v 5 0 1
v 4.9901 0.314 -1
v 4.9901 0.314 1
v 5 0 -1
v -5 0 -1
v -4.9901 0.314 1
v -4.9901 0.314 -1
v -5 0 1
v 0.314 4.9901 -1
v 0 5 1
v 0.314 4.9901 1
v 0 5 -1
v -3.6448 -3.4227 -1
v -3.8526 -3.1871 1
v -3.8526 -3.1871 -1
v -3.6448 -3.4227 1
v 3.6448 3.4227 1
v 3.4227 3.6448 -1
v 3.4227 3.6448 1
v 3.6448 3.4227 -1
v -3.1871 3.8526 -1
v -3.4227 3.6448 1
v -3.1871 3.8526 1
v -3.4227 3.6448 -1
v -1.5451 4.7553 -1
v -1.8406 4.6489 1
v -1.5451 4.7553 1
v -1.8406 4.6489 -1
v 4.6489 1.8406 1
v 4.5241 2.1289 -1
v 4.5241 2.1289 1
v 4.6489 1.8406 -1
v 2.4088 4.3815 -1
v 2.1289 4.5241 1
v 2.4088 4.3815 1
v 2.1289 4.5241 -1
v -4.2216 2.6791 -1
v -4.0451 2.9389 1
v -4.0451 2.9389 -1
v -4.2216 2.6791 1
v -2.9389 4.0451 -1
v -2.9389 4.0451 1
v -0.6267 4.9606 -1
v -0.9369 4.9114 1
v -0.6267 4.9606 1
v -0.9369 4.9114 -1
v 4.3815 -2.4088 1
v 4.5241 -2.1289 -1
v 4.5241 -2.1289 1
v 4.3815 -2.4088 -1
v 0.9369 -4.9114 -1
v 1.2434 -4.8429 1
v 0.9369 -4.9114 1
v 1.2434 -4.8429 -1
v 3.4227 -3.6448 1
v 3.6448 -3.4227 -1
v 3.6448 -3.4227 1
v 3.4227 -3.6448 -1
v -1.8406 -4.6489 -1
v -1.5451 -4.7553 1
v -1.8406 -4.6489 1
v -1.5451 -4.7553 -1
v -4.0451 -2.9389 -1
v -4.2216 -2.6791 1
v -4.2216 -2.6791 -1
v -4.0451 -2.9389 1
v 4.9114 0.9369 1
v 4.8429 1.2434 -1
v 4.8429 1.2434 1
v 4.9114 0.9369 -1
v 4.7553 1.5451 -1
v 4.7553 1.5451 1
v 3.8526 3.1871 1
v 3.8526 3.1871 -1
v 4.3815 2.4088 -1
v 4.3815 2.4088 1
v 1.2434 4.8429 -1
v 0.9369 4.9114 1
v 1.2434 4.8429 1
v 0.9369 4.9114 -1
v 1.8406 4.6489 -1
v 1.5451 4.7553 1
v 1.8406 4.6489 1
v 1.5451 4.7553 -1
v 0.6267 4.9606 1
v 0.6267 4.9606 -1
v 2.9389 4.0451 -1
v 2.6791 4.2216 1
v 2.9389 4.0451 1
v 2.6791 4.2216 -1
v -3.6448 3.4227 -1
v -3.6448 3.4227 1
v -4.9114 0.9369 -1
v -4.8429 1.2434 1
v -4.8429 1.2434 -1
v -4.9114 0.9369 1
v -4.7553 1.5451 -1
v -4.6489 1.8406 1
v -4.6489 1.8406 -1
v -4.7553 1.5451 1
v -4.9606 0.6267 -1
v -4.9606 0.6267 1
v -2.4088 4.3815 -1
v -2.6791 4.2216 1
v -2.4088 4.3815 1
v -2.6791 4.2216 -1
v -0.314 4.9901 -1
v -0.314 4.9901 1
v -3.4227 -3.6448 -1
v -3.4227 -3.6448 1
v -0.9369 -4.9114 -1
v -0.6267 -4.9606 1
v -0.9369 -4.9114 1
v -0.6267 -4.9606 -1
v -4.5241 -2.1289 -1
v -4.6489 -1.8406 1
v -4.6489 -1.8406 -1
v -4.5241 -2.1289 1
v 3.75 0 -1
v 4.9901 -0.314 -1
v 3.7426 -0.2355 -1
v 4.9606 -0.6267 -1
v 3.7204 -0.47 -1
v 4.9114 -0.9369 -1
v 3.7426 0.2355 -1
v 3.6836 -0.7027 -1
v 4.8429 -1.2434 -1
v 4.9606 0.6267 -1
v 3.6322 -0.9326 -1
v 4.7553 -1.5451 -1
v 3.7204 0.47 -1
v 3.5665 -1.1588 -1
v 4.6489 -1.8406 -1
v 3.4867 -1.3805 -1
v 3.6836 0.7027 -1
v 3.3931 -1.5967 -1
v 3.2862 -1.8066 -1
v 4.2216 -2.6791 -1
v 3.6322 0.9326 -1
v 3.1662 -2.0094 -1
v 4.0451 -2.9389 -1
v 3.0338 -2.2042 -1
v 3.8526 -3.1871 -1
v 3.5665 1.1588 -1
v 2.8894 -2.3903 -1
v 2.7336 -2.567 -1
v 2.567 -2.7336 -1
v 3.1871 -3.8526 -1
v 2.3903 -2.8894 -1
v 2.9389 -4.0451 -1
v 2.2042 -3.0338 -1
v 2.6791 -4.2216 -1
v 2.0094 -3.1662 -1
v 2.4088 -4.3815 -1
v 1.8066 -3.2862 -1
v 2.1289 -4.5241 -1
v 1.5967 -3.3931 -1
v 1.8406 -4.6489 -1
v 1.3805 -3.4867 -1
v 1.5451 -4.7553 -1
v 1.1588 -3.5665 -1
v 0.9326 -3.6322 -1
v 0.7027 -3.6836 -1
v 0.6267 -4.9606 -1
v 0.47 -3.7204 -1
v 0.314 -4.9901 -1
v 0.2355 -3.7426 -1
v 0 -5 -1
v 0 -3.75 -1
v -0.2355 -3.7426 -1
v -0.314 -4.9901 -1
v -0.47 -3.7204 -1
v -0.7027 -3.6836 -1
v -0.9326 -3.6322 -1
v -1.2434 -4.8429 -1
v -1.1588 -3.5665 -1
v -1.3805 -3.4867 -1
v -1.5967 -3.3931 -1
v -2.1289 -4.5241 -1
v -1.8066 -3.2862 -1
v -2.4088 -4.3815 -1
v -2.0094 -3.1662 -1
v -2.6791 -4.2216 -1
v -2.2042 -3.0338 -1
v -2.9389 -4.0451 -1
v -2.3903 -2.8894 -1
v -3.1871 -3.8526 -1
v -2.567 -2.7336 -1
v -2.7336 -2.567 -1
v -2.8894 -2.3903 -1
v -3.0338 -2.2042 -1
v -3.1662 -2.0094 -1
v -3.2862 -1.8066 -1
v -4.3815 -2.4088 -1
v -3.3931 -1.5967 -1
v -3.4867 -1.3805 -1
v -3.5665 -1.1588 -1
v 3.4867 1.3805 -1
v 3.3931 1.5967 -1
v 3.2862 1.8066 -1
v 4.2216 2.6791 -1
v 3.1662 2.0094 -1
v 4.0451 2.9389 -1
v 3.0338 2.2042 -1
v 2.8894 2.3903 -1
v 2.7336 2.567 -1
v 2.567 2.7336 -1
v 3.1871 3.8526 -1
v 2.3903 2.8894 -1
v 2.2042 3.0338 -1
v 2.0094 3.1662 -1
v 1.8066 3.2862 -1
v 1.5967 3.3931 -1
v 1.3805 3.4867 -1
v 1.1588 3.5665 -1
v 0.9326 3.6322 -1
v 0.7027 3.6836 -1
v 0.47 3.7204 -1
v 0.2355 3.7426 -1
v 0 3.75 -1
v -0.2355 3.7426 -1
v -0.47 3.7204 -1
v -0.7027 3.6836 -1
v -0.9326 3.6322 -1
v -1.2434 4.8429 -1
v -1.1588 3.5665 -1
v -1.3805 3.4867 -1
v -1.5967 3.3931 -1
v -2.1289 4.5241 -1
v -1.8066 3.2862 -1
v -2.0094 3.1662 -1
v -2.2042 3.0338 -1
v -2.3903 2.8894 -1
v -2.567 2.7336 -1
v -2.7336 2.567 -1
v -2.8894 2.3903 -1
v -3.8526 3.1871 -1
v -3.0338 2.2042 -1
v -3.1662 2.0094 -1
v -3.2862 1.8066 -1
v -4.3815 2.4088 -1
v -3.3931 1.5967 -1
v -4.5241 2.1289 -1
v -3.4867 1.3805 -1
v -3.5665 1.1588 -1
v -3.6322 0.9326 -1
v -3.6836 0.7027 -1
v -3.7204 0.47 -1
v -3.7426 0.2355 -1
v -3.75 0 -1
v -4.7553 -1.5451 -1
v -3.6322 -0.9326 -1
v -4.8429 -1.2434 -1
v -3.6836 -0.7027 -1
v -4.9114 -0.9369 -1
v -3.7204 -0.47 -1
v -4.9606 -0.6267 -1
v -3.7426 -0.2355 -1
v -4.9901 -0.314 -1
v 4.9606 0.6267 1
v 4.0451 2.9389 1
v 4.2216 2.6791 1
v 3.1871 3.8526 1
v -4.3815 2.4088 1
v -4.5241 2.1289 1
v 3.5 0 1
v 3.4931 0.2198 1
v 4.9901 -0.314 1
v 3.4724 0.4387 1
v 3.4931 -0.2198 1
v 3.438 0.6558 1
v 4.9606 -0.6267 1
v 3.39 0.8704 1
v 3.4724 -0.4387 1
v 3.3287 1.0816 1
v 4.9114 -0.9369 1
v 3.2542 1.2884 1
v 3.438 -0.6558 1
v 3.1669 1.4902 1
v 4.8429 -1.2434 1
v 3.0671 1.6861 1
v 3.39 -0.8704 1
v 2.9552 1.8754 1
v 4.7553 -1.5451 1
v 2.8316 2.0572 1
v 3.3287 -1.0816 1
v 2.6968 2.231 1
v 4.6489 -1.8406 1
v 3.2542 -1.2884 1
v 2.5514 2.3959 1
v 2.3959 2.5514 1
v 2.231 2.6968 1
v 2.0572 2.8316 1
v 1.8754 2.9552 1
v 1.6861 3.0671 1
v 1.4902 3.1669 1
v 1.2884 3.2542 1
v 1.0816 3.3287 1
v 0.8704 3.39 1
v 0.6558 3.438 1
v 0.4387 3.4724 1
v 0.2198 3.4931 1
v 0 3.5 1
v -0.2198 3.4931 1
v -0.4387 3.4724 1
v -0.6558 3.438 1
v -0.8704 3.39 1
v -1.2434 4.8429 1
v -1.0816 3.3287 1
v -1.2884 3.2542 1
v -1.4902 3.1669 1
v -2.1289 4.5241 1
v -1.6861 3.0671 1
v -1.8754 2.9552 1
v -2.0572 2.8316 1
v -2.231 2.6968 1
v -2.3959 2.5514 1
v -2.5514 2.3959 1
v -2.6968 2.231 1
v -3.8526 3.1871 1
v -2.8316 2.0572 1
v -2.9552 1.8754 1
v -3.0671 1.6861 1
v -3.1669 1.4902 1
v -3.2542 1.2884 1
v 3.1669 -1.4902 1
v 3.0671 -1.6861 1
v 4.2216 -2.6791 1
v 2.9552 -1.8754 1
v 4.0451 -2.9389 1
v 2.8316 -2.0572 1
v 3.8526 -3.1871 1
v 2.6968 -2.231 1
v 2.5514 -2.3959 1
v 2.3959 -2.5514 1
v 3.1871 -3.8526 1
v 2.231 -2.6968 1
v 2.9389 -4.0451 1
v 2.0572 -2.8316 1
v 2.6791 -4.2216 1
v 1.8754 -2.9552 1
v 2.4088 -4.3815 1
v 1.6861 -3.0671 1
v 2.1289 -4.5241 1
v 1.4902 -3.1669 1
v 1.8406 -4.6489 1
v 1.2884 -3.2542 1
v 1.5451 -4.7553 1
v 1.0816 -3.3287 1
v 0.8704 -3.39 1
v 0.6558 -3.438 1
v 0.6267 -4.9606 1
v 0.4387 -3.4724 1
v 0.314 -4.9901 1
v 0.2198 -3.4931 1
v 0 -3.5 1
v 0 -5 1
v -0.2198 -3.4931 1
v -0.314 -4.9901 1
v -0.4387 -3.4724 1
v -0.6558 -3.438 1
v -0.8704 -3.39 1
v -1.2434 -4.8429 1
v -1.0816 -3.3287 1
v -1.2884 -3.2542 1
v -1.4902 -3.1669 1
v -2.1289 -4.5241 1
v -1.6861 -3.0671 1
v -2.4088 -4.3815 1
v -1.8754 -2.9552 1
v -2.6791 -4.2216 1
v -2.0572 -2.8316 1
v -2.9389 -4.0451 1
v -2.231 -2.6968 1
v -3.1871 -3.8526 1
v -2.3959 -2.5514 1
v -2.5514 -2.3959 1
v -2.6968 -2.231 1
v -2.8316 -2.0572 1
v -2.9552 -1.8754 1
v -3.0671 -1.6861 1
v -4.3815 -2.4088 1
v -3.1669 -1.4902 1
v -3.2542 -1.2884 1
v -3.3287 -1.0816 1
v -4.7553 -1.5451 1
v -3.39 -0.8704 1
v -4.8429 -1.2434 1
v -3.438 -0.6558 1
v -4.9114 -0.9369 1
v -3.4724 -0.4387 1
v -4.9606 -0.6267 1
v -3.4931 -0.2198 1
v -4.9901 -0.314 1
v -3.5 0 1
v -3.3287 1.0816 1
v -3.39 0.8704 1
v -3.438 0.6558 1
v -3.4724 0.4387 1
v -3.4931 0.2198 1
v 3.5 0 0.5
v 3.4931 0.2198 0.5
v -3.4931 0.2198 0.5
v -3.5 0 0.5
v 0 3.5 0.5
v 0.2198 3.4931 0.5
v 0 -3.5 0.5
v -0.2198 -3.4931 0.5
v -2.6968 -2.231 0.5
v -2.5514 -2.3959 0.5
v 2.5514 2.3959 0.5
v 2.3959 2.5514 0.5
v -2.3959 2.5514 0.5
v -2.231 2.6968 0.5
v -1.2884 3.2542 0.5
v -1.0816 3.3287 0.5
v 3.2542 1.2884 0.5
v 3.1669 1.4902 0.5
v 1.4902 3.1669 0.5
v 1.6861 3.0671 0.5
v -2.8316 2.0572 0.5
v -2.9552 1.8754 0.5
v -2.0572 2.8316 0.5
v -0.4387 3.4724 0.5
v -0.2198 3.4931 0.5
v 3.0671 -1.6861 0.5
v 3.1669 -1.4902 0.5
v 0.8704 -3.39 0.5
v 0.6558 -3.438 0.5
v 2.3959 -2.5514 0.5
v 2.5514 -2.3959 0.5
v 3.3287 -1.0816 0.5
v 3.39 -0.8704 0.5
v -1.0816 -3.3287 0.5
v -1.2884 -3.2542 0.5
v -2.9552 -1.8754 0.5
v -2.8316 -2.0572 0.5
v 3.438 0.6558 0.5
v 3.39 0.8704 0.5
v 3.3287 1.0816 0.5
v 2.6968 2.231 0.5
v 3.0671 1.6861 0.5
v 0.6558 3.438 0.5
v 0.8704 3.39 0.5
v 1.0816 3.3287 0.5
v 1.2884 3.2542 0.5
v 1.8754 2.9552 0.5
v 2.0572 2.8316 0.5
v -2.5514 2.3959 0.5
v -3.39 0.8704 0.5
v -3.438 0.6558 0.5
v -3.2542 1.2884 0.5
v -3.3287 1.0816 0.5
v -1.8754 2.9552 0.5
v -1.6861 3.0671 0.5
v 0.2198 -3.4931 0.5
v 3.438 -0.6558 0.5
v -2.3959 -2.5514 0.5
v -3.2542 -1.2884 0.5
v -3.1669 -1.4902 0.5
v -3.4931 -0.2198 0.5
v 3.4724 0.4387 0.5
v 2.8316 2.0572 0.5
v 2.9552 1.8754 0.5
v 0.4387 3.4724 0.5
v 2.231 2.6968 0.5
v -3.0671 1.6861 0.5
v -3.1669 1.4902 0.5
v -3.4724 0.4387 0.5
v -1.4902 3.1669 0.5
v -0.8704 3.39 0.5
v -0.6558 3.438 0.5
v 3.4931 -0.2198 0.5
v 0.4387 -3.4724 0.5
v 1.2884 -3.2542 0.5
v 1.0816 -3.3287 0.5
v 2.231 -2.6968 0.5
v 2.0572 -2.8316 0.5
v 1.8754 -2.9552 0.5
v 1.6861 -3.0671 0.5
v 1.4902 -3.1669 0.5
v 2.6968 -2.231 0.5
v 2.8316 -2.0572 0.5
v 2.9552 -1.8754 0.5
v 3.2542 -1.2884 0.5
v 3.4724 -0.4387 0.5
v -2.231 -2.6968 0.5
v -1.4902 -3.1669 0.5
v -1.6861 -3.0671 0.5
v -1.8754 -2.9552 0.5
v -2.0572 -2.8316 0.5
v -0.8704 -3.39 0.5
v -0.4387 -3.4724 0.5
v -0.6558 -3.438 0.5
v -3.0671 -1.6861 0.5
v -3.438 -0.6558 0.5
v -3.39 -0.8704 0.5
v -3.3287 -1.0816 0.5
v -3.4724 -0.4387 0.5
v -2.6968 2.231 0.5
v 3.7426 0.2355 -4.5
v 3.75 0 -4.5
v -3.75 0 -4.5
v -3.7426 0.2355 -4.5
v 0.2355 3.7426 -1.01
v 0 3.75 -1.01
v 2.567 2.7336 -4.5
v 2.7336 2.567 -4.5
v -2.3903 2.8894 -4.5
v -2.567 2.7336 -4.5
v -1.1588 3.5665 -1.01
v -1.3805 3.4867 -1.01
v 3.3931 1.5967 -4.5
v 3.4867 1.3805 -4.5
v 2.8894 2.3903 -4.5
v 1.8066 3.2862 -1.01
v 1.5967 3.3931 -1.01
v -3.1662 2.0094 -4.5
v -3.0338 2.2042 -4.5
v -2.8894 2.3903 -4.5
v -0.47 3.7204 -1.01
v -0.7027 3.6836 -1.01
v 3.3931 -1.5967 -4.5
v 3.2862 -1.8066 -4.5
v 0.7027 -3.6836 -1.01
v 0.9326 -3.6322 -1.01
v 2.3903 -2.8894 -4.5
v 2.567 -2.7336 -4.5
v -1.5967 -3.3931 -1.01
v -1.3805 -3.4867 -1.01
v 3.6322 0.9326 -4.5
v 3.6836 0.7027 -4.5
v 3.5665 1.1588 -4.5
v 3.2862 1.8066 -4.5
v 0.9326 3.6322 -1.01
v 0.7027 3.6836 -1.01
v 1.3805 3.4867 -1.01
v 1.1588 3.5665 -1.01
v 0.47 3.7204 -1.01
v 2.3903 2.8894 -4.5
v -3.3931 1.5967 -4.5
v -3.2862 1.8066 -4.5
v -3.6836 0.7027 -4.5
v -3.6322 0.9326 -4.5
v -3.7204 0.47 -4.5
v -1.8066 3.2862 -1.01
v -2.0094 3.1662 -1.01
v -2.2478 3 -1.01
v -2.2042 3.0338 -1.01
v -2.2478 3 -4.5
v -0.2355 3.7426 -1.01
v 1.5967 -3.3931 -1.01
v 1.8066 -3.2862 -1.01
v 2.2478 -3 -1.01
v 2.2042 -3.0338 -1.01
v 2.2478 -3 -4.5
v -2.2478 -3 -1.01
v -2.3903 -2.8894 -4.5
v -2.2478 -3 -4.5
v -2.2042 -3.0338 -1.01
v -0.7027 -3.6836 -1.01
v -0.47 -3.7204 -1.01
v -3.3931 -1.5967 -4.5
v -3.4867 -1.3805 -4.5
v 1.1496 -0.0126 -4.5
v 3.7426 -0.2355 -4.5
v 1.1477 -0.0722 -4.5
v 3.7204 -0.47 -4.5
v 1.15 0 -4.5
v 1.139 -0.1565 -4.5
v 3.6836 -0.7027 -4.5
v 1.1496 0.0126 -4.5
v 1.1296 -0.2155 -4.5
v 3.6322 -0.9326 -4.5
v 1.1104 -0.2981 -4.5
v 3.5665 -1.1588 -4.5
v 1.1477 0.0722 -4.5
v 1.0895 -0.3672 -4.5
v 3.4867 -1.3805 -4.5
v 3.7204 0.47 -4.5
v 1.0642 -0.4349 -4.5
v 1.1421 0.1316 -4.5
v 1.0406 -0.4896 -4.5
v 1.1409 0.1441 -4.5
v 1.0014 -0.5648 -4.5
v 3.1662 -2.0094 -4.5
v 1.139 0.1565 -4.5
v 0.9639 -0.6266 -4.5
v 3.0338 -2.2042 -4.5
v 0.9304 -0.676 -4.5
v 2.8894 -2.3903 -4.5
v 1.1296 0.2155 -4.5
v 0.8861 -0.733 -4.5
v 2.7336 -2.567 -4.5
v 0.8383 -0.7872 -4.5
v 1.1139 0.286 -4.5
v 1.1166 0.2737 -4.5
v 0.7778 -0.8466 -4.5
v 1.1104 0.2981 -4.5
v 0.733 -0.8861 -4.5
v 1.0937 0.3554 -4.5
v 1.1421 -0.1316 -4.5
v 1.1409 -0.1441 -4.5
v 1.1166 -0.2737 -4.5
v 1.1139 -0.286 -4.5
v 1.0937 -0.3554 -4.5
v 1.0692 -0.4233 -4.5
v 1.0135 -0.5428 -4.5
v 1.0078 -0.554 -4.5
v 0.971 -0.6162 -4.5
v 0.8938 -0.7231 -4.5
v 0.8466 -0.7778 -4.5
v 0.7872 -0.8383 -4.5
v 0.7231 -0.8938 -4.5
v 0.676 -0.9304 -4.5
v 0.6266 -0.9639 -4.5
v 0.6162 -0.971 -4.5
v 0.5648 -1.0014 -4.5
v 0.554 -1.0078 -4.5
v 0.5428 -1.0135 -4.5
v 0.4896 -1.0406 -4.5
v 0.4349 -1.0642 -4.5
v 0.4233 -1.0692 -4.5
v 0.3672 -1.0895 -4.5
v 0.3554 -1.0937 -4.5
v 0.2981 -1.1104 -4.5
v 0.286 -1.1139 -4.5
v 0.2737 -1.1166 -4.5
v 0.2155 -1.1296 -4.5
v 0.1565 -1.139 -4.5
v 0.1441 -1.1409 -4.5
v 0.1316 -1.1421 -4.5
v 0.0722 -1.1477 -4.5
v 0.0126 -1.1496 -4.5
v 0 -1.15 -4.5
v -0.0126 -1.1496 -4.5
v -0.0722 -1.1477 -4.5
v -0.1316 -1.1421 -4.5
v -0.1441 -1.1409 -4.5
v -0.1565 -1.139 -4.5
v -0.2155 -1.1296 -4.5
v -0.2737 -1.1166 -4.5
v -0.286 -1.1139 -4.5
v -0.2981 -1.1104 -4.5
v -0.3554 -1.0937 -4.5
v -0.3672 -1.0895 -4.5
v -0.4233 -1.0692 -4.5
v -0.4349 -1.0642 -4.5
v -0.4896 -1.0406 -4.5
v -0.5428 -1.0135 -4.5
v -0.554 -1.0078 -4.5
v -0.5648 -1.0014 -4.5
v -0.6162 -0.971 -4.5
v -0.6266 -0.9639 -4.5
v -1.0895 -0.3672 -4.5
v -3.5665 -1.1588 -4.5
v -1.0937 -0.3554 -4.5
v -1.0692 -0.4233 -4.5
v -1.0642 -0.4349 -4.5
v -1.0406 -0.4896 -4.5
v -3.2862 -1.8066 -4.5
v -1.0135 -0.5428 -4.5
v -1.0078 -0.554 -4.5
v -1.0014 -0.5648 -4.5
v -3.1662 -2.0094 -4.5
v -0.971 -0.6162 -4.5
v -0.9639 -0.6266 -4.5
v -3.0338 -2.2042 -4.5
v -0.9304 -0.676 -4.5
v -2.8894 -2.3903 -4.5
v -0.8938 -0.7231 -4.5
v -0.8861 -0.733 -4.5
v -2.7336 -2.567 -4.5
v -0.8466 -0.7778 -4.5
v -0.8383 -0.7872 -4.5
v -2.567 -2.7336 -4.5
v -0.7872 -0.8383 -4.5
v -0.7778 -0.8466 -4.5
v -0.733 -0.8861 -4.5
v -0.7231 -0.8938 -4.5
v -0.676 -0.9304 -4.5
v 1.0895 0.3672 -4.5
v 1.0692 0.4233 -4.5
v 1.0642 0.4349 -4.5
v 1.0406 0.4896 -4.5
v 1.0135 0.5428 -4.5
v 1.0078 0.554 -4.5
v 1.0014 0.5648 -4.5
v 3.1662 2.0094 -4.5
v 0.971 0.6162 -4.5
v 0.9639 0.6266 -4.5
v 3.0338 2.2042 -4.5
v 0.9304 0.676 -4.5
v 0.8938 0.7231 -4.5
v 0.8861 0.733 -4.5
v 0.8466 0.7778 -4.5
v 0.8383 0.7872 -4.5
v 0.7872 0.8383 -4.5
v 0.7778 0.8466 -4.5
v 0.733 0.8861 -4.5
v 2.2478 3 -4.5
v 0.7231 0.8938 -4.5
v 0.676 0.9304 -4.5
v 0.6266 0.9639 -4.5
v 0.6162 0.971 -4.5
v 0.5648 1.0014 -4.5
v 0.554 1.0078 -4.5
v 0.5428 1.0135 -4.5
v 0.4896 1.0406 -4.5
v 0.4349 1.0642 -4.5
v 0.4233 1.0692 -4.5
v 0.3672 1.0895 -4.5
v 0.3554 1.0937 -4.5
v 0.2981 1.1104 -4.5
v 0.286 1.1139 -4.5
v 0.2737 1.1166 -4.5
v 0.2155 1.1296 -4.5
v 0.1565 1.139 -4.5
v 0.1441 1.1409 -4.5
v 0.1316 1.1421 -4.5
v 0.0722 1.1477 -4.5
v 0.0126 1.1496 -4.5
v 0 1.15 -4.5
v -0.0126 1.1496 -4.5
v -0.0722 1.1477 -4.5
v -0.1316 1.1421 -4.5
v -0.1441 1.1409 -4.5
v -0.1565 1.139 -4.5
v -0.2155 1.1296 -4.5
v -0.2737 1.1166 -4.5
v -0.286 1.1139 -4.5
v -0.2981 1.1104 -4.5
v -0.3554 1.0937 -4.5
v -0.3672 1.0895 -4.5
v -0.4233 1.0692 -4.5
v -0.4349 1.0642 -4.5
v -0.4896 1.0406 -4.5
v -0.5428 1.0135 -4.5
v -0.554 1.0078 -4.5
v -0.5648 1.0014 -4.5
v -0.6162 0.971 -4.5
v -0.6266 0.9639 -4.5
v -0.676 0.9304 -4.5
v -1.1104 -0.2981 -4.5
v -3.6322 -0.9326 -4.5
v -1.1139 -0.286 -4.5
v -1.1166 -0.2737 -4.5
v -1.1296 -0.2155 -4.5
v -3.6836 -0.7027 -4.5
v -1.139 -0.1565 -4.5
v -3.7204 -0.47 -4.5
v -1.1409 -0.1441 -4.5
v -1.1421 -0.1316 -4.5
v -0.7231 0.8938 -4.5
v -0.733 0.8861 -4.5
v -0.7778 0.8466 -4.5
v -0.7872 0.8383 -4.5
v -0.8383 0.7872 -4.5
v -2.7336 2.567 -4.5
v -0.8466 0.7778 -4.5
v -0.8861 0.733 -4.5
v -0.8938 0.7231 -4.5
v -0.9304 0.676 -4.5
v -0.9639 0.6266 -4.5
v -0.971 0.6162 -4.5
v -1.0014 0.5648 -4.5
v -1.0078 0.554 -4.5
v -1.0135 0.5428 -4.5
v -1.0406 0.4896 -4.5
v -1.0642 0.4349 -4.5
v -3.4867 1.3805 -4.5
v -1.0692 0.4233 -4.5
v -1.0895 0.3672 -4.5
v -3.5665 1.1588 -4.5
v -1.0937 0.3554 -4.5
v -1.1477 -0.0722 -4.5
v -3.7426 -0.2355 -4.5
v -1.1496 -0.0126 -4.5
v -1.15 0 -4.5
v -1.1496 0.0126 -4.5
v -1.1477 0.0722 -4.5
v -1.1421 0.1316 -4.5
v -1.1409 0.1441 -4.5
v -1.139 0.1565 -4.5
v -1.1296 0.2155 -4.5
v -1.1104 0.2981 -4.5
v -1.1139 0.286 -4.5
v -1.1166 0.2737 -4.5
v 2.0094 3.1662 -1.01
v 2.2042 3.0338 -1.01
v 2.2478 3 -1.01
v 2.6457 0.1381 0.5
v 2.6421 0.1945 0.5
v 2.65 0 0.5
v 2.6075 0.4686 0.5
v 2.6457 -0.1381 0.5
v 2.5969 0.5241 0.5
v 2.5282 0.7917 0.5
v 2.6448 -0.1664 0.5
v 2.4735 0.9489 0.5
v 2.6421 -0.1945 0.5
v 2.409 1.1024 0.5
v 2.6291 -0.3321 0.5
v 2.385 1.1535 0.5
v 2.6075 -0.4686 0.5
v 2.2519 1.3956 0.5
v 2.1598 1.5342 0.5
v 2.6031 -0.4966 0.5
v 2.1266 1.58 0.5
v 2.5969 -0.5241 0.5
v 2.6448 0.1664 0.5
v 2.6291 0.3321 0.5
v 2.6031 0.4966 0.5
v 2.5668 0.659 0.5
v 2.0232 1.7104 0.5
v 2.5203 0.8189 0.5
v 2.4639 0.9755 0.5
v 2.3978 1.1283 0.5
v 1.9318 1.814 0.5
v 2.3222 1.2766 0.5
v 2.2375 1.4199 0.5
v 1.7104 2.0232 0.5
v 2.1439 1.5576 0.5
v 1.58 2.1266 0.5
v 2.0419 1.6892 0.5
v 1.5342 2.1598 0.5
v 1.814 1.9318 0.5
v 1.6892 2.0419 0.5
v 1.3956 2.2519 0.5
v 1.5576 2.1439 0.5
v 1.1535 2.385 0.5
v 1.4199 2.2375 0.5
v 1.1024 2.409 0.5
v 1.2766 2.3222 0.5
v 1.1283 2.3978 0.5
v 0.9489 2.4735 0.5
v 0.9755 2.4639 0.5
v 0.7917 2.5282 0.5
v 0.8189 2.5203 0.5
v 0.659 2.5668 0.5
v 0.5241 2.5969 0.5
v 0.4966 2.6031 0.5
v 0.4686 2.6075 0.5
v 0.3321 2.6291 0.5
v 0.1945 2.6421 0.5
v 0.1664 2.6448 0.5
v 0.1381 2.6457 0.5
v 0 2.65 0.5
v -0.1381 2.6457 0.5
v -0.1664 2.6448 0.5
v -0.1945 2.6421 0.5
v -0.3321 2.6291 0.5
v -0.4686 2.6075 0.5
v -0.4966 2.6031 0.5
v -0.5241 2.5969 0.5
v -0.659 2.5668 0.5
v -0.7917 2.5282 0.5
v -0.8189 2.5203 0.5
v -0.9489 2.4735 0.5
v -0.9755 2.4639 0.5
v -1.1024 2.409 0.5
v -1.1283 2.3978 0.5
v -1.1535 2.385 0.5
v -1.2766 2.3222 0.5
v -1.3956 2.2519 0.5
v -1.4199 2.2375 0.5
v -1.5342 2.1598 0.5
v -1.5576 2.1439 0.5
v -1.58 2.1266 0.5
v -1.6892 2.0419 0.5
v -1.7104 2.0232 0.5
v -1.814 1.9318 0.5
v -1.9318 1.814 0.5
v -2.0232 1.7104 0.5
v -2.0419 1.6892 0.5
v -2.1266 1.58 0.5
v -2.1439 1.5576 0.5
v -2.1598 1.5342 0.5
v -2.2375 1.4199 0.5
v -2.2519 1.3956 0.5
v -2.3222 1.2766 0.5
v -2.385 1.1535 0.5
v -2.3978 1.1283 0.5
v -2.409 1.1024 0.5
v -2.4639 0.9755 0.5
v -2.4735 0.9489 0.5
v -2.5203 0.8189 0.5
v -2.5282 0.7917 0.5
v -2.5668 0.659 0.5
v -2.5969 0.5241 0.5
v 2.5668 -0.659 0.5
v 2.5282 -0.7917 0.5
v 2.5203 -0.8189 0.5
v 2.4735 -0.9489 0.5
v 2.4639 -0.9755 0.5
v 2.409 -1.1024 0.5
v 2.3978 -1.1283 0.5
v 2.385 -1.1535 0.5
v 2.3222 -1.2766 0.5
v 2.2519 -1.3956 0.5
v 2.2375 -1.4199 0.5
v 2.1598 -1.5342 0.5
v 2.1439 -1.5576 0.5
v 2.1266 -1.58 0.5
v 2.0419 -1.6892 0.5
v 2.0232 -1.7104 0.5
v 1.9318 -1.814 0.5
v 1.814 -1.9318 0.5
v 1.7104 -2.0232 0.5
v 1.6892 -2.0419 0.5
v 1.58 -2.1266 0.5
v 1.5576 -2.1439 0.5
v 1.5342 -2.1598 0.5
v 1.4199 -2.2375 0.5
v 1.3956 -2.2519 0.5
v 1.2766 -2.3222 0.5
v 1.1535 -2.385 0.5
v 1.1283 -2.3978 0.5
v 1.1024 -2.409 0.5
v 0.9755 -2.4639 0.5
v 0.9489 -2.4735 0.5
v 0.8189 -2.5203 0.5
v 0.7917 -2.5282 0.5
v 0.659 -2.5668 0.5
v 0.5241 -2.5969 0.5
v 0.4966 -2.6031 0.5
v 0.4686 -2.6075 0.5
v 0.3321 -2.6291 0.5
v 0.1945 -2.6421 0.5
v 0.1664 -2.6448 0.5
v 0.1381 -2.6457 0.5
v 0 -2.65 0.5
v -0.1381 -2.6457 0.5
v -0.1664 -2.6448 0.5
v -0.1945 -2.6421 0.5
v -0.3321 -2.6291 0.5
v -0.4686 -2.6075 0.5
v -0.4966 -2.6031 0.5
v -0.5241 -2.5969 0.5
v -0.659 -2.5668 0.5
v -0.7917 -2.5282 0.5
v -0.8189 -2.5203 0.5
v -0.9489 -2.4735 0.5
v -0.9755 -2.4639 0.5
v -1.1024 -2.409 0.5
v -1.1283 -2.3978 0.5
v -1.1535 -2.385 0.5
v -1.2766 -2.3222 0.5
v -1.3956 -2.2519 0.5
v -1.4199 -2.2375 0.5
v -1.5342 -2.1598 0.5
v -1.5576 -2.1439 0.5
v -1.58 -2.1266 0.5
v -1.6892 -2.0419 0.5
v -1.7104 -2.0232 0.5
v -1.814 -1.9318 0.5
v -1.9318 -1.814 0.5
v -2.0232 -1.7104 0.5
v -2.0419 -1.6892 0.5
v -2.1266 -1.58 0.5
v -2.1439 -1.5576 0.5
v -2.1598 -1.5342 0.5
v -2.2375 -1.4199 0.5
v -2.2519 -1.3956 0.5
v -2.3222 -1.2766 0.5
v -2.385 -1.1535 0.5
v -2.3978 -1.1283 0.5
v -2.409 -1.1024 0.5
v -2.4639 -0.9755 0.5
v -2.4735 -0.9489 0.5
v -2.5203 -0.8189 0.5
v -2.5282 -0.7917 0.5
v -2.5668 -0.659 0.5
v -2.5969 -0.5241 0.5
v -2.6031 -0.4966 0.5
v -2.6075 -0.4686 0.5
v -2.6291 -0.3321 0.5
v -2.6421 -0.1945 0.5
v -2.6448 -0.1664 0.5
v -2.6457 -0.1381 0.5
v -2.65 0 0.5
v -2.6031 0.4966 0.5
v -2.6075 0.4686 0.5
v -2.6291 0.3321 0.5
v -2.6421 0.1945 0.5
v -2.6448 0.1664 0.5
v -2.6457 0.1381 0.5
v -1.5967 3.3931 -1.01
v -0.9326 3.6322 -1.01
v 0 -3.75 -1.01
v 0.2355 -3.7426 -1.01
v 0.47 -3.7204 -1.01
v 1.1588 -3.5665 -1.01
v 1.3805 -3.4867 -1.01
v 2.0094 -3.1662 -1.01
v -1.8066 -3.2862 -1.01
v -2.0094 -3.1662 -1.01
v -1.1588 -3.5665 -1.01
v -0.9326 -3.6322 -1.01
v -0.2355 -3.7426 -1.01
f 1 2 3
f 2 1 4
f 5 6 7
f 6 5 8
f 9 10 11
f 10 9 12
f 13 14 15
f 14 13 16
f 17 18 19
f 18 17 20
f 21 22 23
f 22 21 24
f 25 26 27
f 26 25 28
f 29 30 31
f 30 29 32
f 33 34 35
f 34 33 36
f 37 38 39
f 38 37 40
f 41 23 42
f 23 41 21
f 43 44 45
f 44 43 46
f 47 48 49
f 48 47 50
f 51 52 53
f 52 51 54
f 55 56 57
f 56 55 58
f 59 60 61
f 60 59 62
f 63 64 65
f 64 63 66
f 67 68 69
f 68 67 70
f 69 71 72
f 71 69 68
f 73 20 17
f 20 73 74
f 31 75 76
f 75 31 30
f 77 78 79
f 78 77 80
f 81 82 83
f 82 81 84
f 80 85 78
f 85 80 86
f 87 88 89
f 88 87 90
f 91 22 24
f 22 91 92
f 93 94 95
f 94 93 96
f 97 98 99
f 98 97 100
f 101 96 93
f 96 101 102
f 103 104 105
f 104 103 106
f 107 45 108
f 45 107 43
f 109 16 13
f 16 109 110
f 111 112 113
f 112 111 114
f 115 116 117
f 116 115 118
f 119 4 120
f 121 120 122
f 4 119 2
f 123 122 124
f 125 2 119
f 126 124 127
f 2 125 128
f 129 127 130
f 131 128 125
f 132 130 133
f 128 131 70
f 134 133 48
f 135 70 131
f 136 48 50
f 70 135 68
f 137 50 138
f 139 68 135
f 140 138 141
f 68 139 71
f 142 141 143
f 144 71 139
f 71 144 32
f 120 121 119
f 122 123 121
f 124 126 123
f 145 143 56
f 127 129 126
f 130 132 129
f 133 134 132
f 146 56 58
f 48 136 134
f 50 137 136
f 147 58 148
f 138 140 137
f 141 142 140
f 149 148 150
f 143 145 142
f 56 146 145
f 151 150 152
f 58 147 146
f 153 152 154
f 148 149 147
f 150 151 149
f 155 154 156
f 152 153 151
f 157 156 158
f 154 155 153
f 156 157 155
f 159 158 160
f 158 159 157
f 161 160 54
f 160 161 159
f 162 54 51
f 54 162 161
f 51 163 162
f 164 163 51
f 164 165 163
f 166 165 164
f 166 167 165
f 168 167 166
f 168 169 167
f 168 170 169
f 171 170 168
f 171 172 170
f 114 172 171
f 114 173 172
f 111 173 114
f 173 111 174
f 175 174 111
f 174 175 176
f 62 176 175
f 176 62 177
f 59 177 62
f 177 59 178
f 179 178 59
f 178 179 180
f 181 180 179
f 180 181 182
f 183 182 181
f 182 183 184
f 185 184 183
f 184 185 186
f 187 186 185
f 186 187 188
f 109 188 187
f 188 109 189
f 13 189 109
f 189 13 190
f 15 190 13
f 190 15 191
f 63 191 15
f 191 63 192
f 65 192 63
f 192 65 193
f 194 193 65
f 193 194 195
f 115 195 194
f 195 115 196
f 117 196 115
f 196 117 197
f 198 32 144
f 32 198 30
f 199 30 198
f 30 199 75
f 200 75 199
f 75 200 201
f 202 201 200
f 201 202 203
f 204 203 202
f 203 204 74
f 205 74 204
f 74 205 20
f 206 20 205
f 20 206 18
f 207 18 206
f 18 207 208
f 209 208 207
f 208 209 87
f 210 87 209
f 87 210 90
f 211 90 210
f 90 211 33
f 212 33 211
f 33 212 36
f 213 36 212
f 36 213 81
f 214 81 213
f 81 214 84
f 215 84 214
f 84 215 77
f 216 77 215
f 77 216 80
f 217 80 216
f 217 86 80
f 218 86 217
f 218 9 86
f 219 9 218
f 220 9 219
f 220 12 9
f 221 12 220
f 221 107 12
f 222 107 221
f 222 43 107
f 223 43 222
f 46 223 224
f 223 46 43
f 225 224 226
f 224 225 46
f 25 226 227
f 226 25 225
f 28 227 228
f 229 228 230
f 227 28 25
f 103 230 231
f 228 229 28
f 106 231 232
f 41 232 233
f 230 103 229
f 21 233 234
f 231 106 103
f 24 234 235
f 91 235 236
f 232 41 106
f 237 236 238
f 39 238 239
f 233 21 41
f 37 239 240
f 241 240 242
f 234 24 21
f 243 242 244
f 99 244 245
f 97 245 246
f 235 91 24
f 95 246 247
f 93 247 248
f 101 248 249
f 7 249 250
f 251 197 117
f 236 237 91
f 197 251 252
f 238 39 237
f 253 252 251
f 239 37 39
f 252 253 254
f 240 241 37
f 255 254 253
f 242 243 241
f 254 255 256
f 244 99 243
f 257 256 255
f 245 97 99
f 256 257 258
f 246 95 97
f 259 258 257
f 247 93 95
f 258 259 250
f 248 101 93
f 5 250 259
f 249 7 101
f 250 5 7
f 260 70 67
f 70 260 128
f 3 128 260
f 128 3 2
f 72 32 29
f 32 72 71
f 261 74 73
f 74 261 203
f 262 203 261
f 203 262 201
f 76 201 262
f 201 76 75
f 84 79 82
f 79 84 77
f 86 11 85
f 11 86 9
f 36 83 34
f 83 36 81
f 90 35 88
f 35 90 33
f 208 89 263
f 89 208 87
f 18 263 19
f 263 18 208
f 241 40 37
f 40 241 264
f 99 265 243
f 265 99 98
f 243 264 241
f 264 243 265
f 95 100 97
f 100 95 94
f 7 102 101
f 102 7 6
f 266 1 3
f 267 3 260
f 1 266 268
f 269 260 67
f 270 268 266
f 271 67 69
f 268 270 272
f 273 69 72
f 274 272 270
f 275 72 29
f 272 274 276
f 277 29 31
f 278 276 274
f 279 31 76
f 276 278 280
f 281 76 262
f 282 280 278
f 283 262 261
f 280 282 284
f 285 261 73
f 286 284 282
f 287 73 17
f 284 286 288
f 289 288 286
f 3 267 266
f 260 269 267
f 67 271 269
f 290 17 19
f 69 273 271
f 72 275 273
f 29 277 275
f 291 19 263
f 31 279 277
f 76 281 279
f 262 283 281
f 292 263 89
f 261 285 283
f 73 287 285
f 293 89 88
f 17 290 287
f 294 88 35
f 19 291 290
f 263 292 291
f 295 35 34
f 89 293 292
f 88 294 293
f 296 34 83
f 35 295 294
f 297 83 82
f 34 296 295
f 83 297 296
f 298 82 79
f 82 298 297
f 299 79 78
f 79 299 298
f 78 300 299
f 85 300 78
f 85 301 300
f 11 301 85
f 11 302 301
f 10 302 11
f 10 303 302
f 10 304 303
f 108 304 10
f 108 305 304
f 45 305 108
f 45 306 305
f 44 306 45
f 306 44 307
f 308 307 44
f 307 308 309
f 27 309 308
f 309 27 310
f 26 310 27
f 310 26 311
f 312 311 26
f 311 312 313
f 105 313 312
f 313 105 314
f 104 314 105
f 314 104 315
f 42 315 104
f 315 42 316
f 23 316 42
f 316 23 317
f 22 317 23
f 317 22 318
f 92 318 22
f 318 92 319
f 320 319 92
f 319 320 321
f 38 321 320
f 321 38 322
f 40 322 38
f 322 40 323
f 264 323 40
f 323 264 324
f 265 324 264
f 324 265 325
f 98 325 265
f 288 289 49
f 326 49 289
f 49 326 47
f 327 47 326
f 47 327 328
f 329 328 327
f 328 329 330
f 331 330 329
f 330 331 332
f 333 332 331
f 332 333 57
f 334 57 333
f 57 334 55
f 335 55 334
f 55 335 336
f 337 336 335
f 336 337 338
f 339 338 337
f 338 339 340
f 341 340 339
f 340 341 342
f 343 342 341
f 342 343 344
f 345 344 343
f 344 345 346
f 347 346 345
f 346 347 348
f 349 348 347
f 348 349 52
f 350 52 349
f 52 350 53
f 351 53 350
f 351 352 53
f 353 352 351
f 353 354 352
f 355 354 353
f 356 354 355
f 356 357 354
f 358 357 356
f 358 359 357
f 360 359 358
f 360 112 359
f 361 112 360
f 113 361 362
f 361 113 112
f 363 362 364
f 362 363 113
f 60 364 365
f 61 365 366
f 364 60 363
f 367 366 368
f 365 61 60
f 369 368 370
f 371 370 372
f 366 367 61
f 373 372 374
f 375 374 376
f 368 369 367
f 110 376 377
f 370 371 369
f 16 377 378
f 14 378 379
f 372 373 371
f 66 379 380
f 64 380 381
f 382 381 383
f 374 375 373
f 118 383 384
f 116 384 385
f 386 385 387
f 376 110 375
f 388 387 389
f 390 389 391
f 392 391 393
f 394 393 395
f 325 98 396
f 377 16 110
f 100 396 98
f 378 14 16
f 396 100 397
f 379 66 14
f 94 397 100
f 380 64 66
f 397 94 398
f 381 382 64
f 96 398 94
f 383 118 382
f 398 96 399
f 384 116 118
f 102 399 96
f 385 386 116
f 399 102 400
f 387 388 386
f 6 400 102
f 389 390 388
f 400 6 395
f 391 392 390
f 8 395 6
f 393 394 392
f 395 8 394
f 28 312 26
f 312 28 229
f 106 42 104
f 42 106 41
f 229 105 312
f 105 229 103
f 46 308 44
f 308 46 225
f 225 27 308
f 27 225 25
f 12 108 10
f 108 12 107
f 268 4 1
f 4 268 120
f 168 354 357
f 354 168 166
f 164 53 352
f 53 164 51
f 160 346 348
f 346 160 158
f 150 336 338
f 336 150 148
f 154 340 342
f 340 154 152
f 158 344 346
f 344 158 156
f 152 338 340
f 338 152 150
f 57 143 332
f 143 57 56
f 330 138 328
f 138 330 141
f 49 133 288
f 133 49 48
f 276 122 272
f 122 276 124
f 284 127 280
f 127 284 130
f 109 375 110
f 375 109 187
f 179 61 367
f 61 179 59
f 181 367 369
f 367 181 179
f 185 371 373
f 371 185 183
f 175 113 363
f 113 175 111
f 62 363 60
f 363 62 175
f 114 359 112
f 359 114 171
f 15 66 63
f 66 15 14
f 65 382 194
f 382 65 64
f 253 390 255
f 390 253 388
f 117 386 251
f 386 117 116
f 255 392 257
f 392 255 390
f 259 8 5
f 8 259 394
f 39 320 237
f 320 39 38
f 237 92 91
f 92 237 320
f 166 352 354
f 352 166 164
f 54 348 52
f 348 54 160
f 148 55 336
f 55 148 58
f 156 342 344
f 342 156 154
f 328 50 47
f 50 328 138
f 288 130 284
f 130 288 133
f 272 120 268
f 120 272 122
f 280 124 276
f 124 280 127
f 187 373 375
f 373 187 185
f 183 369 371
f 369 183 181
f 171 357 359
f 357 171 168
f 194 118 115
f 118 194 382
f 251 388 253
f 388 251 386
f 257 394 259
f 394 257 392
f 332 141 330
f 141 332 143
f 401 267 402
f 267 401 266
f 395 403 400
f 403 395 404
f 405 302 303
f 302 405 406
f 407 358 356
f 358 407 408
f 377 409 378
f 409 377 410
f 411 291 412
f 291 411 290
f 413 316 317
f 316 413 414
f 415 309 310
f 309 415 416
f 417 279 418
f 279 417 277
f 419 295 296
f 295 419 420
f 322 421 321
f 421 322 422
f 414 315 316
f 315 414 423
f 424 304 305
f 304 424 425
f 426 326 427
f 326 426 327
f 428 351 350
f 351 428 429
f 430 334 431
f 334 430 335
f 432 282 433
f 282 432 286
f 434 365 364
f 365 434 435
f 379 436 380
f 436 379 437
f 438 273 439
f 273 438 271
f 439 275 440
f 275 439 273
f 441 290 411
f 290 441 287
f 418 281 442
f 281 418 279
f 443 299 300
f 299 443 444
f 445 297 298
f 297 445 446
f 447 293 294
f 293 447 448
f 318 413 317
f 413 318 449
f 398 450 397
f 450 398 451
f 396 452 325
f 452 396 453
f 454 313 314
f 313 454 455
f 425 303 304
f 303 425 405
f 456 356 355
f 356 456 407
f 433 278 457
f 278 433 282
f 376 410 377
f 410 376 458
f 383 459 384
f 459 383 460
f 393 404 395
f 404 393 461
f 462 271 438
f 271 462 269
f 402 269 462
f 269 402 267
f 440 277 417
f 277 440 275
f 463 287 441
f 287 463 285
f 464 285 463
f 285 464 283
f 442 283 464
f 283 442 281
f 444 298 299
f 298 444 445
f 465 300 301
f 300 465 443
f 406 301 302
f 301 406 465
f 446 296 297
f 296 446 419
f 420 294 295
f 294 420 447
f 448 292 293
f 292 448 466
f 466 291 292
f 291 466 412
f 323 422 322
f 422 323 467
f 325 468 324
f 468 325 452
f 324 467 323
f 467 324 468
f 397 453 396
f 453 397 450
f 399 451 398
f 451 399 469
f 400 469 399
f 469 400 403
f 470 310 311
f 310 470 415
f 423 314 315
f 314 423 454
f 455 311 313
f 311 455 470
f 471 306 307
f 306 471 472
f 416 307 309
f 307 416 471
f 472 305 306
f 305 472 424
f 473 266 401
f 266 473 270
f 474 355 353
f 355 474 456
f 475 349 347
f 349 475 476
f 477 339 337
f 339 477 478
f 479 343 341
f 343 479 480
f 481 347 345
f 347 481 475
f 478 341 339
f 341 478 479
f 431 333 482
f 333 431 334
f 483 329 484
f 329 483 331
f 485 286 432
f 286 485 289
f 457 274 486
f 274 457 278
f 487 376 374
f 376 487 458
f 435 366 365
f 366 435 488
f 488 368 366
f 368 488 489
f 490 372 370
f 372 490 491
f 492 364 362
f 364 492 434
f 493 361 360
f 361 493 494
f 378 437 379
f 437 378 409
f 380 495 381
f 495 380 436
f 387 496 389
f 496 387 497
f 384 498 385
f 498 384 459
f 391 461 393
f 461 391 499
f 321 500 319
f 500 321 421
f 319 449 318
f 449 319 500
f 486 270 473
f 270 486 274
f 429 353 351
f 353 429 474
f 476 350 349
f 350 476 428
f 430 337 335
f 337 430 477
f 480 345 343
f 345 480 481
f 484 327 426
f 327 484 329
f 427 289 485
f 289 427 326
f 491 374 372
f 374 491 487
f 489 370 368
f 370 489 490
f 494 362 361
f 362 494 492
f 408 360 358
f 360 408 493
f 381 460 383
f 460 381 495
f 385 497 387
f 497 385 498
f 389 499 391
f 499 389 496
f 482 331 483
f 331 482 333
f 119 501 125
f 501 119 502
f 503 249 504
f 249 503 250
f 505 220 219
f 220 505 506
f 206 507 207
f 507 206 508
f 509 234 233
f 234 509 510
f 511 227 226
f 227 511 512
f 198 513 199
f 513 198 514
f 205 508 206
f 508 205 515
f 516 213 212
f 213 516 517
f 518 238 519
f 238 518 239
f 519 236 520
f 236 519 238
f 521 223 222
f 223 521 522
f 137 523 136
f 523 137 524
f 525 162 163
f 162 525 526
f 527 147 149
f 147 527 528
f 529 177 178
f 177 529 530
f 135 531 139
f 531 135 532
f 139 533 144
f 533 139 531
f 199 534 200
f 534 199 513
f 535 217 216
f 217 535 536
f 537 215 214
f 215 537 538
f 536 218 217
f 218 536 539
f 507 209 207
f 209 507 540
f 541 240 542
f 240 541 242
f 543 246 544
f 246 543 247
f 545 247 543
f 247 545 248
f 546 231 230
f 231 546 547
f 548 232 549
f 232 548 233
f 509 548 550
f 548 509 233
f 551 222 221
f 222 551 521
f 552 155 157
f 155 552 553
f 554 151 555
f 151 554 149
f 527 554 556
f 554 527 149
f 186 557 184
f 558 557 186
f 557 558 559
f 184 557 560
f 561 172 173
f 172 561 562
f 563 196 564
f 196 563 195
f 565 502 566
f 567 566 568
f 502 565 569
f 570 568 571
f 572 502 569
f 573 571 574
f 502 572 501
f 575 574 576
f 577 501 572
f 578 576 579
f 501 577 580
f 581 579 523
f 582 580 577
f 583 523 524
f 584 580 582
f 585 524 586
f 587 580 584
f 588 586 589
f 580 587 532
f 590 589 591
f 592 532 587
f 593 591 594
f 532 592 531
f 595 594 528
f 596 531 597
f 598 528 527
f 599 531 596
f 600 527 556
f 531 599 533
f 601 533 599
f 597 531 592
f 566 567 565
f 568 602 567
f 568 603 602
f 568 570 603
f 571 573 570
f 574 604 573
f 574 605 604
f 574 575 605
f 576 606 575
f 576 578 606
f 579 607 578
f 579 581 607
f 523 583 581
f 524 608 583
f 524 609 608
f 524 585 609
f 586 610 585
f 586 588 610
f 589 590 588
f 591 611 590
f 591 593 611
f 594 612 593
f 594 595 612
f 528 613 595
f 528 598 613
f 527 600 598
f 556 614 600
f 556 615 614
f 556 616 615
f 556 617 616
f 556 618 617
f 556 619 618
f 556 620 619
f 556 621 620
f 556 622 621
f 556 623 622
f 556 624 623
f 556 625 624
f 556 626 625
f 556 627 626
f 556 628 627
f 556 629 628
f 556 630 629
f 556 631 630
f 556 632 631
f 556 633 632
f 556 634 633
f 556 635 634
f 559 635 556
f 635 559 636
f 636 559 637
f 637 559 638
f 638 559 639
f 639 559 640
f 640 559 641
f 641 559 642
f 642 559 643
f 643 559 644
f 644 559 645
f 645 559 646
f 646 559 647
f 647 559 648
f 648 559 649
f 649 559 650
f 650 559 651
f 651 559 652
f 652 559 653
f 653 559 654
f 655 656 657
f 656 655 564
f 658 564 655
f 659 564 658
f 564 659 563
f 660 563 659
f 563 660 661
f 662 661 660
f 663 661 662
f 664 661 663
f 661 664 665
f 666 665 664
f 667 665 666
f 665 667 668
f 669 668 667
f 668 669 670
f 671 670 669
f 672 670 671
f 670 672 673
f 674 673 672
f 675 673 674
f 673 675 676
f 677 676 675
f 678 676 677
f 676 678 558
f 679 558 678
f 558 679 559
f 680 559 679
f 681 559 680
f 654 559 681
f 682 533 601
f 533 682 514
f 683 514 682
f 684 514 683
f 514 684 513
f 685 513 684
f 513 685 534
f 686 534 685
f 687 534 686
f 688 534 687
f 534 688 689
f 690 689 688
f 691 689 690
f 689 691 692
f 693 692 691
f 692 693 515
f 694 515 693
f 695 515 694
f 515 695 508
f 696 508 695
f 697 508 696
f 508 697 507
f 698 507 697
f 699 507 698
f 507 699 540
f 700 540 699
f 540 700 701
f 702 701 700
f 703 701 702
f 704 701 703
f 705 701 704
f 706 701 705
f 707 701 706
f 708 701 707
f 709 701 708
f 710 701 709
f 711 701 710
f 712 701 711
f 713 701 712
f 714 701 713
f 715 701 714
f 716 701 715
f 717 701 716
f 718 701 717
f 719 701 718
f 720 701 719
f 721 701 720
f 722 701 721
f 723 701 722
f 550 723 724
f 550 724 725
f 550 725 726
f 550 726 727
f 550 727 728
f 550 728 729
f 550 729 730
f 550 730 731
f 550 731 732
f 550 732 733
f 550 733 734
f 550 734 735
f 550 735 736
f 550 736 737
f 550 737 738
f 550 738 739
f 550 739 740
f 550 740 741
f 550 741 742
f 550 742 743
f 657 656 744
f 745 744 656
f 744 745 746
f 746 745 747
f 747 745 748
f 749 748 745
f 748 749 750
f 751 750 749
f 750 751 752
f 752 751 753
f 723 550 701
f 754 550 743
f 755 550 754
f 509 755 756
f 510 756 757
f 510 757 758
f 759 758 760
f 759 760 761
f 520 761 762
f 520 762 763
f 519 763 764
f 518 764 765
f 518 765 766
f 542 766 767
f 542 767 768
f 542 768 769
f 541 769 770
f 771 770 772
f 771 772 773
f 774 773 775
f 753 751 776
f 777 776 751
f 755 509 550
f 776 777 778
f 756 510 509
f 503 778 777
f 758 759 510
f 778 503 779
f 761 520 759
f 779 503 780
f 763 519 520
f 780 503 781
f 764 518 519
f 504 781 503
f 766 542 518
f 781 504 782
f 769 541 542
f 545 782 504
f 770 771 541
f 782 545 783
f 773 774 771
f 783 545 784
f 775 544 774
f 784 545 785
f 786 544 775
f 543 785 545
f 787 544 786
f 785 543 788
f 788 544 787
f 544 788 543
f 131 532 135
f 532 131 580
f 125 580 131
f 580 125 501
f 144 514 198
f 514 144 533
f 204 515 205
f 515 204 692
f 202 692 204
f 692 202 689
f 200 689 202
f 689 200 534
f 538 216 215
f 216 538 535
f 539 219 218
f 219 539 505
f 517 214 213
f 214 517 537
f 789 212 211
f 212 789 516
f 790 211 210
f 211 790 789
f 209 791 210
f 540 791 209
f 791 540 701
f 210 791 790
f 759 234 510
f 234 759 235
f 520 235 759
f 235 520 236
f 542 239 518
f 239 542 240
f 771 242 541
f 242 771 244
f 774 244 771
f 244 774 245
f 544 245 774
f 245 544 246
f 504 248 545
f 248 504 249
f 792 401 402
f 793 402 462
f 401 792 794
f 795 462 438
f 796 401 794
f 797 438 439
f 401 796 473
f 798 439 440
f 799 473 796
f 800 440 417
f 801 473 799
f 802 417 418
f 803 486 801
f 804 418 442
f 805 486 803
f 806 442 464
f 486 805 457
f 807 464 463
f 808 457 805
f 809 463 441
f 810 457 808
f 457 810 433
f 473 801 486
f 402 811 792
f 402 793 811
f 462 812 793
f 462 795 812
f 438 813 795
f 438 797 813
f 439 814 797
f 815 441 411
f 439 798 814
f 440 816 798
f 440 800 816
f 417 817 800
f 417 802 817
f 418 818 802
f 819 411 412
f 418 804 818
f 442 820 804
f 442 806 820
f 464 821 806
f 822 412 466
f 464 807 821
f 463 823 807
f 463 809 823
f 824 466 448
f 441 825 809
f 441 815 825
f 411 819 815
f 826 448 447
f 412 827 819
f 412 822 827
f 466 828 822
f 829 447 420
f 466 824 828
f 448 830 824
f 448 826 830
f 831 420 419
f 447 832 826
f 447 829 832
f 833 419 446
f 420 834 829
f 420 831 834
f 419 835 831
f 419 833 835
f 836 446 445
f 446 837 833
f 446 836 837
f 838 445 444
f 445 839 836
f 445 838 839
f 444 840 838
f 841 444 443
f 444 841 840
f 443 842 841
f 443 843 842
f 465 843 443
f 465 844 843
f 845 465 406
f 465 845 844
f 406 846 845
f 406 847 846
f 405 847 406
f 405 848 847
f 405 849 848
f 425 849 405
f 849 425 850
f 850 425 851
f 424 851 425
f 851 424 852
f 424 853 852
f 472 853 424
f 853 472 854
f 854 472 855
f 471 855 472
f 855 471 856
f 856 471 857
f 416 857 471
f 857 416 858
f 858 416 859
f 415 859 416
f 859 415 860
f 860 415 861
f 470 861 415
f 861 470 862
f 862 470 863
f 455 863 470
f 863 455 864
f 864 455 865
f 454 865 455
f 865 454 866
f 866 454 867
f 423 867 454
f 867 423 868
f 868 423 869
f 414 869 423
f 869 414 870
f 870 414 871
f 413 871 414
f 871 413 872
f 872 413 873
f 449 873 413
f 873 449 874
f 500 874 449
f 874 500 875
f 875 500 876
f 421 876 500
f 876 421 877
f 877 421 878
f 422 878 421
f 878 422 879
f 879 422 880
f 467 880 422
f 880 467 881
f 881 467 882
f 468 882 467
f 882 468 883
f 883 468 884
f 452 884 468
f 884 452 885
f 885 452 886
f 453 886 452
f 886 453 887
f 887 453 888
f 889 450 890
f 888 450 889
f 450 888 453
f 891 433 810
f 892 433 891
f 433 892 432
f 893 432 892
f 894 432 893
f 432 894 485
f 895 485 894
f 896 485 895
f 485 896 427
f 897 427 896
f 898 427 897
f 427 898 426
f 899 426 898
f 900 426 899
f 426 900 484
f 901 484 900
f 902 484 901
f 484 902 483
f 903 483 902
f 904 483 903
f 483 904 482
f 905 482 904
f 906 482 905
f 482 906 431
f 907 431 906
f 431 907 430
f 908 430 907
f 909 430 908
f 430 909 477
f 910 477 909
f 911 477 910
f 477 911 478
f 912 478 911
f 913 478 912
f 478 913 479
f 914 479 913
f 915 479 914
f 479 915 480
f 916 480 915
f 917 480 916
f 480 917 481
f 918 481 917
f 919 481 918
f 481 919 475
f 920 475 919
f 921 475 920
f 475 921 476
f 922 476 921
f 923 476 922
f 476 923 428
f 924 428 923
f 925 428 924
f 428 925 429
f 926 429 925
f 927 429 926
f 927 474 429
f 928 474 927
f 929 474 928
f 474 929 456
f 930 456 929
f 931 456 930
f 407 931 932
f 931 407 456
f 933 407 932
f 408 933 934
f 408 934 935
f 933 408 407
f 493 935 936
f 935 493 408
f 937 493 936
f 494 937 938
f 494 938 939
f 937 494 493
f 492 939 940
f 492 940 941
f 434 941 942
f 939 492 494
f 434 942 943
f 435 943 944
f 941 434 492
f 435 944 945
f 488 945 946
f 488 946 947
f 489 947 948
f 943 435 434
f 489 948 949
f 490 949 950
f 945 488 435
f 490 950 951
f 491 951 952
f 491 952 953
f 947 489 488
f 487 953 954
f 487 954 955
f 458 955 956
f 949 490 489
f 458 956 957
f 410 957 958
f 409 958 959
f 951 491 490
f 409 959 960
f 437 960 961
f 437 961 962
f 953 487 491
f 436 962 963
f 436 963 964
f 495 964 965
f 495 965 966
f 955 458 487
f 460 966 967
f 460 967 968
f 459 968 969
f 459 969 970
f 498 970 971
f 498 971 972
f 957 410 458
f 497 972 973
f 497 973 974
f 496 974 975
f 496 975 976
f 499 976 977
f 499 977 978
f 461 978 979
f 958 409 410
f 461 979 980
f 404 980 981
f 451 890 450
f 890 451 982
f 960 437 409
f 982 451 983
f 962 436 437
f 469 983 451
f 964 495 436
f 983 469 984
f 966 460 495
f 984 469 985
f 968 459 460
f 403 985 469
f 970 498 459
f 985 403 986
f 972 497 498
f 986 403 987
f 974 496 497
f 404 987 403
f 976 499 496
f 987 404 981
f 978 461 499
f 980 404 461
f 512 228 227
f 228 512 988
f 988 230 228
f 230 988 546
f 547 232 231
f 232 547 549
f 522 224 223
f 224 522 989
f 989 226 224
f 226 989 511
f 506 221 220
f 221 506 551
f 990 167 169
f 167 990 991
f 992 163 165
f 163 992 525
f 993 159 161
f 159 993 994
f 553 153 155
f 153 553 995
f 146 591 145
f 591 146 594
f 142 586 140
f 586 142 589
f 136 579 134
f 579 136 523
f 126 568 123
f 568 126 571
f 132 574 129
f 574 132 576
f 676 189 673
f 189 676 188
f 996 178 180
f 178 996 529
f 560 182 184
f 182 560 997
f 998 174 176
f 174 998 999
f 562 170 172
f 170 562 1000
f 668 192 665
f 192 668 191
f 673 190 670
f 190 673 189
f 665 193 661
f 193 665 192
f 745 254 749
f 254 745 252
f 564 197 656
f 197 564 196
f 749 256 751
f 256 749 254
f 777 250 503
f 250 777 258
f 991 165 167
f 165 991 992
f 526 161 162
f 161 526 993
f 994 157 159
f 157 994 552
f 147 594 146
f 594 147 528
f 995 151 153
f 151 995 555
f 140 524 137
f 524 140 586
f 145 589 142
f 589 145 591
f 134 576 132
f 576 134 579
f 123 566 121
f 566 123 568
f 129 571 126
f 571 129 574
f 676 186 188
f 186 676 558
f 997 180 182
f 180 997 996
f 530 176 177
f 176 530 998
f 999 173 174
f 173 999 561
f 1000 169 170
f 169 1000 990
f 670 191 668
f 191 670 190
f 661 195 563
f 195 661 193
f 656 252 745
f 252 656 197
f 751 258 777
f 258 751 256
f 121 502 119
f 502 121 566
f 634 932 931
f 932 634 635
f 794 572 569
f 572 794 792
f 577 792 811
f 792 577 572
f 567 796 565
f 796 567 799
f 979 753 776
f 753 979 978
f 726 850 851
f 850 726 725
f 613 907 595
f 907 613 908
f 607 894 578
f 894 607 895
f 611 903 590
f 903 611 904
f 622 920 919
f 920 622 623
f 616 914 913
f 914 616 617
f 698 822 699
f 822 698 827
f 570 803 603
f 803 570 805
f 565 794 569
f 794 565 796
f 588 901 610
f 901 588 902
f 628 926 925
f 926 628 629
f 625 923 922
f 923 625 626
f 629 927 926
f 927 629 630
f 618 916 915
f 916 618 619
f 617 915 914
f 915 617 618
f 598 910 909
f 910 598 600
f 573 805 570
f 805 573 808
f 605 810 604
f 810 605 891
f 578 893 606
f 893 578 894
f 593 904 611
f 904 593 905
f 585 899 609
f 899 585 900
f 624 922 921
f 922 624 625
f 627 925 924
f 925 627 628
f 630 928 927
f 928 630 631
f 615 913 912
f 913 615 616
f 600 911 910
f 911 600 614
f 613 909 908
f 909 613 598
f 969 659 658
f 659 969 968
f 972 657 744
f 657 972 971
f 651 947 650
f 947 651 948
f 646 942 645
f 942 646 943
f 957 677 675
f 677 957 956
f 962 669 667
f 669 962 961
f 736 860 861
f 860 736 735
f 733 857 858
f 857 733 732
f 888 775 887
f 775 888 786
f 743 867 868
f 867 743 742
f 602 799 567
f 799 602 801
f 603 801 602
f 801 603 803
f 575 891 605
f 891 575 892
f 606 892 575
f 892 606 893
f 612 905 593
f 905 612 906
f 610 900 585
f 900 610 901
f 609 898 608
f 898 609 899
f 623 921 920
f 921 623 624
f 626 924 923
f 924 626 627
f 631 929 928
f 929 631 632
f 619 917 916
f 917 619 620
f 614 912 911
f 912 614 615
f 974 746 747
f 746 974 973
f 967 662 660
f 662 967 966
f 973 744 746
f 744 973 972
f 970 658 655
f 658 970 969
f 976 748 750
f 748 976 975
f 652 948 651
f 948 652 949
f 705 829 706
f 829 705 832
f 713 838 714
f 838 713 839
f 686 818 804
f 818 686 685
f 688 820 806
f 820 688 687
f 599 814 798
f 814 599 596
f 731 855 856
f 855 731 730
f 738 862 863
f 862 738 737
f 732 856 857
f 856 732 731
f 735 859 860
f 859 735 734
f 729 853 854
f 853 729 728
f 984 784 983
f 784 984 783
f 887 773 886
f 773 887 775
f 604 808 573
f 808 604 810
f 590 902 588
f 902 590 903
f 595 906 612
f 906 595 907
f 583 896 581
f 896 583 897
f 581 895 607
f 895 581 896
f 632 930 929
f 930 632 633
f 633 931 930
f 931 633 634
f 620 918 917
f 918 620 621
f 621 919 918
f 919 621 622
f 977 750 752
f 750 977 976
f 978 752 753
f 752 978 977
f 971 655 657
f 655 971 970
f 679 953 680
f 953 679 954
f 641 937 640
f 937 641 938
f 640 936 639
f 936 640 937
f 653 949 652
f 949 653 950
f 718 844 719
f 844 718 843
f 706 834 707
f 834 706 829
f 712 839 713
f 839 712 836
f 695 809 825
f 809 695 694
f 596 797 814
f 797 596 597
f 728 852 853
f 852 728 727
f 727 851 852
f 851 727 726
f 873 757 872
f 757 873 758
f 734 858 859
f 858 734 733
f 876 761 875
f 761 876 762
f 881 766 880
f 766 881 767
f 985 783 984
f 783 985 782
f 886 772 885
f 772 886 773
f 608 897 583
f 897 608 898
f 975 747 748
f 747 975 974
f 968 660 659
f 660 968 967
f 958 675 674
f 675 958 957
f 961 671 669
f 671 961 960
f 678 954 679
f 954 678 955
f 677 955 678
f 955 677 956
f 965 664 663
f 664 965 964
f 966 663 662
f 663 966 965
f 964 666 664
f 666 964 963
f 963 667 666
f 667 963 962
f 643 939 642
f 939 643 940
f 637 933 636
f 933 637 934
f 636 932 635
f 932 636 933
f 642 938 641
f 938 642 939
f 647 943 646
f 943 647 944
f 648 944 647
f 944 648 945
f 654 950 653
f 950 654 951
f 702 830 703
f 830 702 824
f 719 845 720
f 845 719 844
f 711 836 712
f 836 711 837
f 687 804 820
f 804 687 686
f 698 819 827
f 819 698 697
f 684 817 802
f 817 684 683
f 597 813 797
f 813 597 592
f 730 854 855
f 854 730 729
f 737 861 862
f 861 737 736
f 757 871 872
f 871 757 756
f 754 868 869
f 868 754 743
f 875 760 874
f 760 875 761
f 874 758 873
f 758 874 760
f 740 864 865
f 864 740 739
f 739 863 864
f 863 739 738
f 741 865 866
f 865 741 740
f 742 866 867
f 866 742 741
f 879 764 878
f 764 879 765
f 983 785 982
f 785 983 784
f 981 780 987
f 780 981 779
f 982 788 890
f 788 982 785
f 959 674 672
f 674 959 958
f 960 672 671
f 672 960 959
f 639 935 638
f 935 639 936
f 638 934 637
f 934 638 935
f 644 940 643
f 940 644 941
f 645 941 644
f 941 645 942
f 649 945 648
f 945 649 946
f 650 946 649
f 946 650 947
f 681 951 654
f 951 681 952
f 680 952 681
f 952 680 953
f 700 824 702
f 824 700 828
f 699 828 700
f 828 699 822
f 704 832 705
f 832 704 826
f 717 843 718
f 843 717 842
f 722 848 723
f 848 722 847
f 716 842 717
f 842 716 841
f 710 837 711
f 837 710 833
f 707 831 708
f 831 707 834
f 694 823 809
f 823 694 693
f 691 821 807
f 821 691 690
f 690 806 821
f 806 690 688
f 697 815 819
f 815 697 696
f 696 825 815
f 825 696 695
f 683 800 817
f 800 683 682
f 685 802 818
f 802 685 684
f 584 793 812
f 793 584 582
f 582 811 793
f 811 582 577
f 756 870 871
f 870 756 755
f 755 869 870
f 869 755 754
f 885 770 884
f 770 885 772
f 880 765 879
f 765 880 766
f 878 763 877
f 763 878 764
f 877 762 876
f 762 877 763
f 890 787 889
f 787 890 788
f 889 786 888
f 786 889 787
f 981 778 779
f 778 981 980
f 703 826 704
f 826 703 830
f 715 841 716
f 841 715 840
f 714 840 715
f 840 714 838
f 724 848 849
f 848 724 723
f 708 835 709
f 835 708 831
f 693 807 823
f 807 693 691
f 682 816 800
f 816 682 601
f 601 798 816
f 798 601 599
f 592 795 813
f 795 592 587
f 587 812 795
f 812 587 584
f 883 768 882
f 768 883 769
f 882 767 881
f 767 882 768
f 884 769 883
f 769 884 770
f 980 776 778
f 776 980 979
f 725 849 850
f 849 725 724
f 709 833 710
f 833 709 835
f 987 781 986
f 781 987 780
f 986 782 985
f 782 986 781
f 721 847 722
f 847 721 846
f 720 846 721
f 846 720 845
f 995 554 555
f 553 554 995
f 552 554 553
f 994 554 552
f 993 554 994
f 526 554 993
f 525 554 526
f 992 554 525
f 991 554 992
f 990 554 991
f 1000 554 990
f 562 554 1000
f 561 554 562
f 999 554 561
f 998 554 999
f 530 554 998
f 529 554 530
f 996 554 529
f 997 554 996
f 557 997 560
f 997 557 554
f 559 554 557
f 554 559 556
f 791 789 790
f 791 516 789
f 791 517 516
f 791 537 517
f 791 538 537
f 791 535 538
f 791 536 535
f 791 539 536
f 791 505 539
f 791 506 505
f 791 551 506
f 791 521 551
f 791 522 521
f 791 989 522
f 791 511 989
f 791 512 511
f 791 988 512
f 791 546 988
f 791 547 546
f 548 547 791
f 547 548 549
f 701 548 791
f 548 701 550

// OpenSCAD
$fn = 100;
difference(){    

union(){
    difference(){
        cylinder(2,5,5, true);
        translate([0,0,4]) color("green") cylinder(15,3.5,3.5, true);
    }
    translate([0,0,-2]) color("red") cylinder(5,3.75,3.75, true);
}
    
 cylinder(10,1,4, true);
    translate([0,-5.5,-3.76]) cube([7,5,5.5],true);
    translate([0,5.5,-3.76]) cube([7,5,5.5],true);

}
    
